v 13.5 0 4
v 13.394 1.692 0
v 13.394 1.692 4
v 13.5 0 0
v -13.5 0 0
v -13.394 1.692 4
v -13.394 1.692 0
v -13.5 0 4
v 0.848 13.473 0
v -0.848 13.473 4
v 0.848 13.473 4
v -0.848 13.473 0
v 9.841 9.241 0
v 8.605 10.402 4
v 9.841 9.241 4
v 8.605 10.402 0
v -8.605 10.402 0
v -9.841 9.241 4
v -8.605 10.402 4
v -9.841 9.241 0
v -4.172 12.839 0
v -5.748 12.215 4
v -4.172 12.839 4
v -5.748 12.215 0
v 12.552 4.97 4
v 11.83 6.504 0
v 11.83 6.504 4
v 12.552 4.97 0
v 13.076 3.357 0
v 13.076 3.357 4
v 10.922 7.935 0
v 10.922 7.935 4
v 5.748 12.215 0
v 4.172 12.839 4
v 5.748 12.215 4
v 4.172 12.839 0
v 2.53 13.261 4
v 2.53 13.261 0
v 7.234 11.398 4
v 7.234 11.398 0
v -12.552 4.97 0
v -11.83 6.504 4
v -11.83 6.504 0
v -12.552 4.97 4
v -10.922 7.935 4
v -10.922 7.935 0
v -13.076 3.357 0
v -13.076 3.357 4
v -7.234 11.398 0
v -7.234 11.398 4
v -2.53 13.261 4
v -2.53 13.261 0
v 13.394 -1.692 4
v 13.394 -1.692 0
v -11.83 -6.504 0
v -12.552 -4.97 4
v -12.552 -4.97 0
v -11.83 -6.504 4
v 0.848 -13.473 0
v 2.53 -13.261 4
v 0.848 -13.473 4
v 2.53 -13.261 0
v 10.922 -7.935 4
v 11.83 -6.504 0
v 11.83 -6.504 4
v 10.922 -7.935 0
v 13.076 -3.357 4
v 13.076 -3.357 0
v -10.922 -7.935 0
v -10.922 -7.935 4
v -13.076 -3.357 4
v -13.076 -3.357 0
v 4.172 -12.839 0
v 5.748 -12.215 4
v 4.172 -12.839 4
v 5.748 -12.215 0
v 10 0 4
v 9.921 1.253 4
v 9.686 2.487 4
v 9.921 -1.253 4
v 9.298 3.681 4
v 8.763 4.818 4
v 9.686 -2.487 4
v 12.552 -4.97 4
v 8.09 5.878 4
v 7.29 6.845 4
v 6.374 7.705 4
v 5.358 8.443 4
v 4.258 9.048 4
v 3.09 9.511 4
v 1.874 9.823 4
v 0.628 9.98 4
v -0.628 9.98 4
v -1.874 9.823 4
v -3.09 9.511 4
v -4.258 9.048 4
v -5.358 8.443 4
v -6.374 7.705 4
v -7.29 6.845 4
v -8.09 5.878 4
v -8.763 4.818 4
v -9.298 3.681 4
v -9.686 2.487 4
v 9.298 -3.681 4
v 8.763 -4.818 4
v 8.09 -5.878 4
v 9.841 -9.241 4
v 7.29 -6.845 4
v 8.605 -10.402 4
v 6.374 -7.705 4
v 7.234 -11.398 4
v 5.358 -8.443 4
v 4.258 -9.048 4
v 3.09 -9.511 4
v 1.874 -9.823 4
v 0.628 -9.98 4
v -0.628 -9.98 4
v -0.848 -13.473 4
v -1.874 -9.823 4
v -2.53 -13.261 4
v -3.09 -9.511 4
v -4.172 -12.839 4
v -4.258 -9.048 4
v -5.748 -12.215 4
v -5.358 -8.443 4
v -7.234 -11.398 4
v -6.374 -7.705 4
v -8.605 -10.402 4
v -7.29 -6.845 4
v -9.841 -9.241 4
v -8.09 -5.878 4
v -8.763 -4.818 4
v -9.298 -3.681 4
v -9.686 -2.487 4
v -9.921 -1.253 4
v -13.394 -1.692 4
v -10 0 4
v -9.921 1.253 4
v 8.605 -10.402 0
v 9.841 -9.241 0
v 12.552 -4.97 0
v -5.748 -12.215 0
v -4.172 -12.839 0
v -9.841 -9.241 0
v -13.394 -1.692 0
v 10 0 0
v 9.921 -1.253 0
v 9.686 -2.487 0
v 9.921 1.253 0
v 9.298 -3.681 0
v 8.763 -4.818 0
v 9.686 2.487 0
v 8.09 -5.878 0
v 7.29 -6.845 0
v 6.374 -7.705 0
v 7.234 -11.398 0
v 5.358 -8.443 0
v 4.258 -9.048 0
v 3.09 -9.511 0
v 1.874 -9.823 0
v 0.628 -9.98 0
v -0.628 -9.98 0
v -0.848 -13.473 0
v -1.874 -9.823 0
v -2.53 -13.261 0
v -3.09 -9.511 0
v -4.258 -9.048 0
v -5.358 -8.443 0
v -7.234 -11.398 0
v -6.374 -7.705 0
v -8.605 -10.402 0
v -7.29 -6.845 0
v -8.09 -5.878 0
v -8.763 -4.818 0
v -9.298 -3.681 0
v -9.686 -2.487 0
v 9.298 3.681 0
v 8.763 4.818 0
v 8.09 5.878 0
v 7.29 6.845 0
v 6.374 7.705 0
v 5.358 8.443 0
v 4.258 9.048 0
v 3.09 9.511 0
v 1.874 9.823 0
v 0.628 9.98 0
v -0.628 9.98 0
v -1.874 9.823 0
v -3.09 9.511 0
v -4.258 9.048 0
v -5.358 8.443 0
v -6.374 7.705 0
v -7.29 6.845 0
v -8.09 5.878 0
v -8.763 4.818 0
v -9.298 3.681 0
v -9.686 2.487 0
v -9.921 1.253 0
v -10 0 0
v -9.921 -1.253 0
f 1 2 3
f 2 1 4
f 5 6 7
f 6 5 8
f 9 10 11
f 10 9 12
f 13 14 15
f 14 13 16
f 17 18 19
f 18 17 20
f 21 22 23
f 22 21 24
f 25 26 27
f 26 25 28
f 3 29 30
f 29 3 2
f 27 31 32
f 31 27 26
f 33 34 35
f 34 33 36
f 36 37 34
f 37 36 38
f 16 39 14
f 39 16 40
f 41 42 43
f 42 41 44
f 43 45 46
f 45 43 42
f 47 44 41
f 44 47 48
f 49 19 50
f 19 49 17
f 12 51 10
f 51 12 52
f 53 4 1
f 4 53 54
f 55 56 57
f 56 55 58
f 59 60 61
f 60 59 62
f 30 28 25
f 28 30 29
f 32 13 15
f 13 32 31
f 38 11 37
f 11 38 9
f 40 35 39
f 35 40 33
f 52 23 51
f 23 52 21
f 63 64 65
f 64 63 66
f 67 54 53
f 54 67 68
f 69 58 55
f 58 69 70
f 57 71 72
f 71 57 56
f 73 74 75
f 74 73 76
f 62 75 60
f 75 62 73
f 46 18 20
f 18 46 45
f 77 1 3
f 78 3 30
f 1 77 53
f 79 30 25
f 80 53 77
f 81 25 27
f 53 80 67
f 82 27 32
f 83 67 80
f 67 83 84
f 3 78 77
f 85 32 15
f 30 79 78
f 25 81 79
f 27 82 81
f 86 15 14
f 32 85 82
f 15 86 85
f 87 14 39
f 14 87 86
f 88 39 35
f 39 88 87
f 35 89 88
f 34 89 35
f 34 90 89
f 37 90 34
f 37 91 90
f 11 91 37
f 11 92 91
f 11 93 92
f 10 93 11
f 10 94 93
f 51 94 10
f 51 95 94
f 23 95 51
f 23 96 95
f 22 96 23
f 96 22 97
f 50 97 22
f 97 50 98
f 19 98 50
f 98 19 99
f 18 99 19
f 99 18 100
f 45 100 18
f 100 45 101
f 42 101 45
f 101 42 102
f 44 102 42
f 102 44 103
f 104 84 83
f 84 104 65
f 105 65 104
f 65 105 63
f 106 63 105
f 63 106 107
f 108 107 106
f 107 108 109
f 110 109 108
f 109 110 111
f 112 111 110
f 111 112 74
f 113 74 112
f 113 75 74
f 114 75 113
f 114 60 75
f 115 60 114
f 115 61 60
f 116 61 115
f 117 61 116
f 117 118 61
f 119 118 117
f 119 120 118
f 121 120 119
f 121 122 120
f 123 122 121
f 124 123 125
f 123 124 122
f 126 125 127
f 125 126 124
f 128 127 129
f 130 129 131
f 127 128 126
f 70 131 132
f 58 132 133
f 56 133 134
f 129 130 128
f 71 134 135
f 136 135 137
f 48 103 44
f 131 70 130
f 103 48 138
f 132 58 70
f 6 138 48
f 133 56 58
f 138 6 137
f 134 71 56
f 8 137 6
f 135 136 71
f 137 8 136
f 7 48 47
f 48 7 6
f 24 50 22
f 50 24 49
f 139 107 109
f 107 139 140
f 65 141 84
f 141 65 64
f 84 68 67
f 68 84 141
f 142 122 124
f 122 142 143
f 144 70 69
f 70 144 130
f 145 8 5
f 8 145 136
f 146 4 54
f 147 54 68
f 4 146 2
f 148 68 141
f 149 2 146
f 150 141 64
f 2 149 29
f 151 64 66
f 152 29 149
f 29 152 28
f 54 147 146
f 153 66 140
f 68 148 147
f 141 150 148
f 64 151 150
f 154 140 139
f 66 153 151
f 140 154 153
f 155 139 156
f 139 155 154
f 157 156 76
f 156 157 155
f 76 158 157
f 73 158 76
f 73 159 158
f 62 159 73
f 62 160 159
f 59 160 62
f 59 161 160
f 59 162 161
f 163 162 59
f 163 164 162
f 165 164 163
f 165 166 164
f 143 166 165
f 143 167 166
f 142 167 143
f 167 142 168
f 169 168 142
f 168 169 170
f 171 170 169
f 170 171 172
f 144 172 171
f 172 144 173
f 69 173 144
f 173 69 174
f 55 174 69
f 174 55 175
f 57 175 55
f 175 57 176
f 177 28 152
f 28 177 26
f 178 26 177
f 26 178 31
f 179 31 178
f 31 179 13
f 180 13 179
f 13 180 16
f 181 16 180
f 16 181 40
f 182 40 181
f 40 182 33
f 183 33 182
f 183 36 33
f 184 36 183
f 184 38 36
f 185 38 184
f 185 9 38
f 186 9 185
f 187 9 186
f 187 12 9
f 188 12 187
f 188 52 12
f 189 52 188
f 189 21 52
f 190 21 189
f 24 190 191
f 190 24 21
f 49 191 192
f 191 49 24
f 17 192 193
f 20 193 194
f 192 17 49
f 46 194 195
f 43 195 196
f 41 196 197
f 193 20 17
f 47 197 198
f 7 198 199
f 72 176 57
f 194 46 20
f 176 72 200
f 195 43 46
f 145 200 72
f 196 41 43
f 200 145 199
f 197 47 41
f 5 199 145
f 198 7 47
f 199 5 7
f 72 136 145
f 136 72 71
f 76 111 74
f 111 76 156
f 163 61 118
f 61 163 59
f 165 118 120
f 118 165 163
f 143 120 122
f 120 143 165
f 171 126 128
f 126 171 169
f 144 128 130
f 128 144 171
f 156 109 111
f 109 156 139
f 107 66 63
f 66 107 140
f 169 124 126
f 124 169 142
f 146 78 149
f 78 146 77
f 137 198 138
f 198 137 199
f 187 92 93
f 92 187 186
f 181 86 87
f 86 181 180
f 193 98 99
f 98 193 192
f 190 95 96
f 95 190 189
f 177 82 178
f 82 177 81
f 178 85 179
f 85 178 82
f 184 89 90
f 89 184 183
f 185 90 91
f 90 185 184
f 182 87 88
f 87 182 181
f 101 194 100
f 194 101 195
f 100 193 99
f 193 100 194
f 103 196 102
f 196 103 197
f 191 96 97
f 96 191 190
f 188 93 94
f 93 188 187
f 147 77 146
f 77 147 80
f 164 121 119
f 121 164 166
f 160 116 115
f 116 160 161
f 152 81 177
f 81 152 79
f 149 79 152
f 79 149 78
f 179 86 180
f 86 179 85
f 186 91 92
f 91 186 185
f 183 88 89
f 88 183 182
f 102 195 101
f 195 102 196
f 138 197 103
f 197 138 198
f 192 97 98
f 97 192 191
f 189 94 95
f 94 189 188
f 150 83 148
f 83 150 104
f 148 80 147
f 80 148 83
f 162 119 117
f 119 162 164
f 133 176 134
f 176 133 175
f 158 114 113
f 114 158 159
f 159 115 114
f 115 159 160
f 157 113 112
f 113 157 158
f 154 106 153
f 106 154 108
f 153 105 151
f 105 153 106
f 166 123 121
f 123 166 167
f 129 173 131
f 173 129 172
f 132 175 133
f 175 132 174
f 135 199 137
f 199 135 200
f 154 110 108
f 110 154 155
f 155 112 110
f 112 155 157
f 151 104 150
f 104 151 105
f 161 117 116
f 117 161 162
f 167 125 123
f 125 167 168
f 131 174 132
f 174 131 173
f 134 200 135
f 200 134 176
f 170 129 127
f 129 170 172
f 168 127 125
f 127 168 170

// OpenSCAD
$fn = 50;


difference() {
	union() {
		translate(v = [0, 0, 0]) {
			rotate(a = [0, 0, 0]) {
				cylinder(h = 4, r = 13.5000000000);
			}
		}
	}
	union() {
		translate(v = [0, 0, 0]) {
			rotate(a = [0, 0, 0]) {
				cylinder(h = 4, r = 10.0000000000);
			}
		}
	}
}
